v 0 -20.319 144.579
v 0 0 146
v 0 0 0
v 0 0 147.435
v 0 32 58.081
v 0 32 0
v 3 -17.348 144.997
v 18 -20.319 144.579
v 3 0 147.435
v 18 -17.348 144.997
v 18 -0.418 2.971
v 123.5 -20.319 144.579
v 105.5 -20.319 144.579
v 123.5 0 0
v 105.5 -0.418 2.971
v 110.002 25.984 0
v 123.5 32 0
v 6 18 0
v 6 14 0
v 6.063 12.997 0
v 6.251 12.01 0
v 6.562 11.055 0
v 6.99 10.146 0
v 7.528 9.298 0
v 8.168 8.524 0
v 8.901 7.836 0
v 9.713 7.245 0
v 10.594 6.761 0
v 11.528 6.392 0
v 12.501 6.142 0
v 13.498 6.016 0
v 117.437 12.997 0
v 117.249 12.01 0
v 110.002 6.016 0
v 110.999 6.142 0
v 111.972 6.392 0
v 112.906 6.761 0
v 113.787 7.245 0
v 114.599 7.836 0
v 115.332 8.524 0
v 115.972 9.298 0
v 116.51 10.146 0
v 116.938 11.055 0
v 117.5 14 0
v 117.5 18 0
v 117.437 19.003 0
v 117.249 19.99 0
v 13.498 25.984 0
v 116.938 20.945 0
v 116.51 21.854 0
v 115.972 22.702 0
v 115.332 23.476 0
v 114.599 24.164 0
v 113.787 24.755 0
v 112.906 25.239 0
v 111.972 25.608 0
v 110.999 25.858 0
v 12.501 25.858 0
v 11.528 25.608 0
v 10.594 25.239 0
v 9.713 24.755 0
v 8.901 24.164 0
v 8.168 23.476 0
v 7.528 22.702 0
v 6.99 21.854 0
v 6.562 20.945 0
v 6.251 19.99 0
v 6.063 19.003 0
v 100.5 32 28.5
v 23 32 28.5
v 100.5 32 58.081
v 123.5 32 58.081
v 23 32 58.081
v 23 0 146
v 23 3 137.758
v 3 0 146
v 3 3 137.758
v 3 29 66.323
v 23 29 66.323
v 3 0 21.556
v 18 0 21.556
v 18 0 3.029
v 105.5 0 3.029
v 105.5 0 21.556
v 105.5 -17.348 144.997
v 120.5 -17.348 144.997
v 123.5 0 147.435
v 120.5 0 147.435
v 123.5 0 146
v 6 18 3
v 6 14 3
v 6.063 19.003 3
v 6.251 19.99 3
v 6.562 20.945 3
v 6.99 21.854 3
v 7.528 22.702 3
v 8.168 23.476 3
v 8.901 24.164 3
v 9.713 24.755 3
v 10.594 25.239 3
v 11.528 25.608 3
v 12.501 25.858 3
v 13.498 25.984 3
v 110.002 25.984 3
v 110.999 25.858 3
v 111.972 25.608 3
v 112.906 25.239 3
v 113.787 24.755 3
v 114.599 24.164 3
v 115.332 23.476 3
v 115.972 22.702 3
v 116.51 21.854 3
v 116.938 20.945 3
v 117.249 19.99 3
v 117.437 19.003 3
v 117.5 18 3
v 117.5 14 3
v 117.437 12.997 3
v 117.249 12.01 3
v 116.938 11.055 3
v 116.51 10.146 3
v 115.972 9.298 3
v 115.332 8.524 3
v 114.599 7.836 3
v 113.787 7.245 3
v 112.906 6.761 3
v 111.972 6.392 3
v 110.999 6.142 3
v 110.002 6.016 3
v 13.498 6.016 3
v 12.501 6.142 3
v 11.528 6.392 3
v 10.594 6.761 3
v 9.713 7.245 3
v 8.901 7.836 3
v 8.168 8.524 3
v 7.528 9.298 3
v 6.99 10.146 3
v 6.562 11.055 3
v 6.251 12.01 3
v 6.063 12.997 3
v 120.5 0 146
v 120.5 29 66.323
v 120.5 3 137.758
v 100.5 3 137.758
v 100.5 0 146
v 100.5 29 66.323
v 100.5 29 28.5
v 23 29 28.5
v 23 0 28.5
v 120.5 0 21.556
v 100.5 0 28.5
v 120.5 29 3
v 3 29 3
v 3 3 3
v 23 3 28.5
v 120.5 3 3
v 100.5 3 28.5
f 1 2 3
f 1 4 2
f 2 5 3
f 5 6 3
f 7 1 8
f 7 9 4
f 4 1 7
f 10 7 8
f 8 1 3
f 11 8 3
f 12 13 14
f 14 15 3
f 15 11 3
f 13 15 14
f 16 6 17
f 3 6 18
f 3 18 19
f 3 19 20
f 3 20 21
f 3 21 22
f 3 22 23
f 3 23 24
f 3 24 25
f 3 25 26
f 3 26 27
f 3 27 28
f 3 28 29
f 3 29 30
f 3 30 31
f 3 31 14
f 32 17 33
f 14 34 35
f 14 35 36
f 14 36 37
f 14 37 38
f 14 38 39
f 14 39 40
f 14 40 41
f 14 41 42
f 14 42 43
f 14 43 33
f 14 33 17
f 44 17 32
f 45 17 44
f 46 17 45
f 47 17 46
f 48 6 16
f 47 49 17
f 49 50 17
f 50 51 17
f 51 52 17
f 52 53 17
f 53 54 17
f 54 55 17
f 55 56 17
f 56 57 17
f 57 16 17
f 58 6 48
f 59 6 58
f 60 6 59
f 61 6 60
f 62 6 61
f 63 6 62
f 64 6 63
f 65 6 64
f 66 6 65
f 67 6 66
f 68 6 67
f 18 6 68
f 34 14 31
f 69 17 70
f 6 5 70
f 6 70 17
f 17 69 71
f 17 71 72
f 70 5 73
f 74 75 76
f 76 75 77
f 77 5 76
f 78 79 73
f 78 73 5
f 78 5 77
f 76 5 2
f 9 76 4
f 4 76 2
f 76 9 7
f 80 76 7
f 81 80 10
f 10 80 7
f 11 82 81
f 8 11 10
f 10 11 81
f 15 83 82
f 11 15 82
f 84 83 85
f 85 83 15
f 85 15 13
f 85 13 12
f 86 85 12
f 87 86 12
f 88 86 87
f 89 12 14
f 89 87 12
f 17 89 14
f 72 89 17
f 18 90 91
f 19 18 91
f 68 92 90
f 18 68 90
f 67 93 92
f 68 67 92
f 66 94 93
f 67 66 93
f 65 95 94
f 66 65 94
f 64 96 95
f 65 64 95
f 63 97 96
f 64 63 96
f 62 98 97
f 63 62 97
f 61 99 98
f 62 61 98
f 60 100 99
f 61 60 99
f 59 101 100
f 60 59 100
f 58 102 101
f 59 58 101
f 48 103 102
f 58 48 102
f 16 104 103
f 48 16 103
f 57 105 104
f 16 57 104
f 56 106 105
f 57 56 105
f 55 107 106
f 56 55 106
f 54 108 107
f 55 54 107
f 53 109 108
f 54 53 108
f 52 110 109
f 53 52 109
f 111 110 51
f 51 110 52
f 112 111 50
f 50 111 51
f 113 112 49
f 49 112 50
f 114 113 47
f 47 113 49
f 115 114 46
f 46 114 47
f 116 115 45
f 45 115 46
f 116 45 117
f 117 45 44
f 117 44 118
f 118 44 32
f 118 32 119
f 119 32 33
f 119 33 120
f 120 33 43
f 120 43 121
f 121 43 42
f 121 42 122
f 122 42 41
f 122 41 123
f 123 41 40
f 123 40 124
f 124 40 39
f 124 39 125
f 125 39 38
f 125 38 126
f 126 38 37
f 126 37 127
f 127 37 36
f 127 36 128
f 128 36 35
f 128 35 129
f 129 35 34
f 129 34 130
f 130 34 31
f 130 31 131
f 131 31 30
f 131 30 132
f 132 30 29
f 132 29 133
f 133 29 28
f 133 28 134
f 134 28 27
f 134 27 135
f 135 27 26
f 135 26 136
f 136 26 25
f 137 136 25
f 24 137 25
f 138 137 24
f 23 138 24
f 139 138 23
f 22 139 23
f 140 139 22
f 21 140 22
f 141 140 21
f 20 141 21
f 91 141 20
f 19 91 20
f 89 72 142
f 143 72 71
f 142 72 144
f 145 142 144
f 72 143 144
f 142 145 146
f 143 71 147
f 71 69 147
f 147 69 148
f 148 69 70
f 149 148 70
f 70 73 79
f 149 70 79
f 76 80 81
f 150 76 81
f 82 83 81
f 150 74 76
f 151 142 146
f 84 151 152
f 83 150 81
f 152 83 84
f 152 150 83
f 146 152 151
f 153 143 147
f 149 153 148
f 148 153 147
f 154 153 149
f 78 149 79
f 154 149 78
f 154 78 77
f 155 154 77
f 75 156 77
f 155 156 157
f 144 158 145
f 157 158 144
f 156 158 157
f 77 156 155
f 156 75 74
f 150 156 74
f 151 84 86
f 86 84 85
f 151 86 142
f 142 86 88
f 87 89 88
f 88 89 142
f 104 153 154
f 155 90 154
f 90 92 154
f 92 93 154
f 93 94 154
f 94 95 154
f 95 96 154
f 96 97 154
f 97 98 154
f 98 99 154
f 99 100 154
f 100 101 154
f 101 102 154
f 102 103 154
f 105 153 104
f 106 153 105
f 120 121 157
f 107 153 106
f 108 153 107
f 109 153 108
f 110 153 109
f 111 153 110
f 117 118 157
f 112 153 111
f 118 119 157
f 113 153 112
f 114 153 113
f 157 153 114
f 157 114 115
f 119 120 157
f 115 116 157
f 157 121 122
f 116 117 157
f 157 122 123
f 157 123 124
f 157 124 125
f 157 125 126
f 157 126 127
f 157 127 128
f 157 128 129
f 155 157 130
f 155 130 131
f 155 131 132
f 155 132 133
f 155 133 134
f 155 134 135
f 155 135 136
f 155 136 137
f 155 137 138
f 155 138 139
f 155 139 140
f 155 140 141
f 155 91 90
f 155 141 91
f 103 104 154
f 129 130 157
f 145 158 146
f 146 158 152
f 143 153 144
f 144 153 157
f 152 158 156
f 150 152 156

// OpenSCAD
$fn = 50;

ra = 20;
rv = 30;

hia = 30;
bia = 17.0;
lia = 108.5;

sp = 3;

d = 3;

h = 140;
b = bia + d + 2*sp;
l = lia + d + 2*sp;


ba = 7;
la = 10;

a1 = 4 + sp;
a2 = a1 + 33;
a3 = a2 + 54;

ang = 20;


spa = 2;
da = 0.7;

ro = 5;
bk = 5;
rs = 6/2;
rsb= 3.2/2;
lo = 75;

lls = 15;
angs = 8;

Wr = 8;


difference(){
	rotate([angs,0,0]){
		difference(){
			cube([l+2*d,b+2*d,h+2*d]);
			translate([d,d,d]) cube([l,b+2*d,h+2*d]);
			translate([d+lls,-d,d]) cube([l-lls*2,b+2*d,h+2*d]);

		}
	}

	translate([-d, 0, 0]) cube([l+4*d,b+4*d,h+4*d]);
}

difference(){
	cube([l+2*d,b+2*d,h+2*d]);
	translate([d,d,d]) cube([l,b,h+2*d]);
	translate([d+ra,-2*d,rv-0.5*d]) cube([l-2*ra,b+sp+4*d,h+2*d]);
	translate([0,0,h+2*d]) rotate([ang,0,0]) translate([-d,0,-(h+2*d)])cube([l+4*d,b+2*d,h+2*d]);
	minkowski(){
		translate([2*d+Wr,2*d+Wr,-d]) cube([l-2*d-2*Wr,b-2*d-2*Wr,h+2*d]);
		cylinder(r=Wr, h=1);
	}
}
